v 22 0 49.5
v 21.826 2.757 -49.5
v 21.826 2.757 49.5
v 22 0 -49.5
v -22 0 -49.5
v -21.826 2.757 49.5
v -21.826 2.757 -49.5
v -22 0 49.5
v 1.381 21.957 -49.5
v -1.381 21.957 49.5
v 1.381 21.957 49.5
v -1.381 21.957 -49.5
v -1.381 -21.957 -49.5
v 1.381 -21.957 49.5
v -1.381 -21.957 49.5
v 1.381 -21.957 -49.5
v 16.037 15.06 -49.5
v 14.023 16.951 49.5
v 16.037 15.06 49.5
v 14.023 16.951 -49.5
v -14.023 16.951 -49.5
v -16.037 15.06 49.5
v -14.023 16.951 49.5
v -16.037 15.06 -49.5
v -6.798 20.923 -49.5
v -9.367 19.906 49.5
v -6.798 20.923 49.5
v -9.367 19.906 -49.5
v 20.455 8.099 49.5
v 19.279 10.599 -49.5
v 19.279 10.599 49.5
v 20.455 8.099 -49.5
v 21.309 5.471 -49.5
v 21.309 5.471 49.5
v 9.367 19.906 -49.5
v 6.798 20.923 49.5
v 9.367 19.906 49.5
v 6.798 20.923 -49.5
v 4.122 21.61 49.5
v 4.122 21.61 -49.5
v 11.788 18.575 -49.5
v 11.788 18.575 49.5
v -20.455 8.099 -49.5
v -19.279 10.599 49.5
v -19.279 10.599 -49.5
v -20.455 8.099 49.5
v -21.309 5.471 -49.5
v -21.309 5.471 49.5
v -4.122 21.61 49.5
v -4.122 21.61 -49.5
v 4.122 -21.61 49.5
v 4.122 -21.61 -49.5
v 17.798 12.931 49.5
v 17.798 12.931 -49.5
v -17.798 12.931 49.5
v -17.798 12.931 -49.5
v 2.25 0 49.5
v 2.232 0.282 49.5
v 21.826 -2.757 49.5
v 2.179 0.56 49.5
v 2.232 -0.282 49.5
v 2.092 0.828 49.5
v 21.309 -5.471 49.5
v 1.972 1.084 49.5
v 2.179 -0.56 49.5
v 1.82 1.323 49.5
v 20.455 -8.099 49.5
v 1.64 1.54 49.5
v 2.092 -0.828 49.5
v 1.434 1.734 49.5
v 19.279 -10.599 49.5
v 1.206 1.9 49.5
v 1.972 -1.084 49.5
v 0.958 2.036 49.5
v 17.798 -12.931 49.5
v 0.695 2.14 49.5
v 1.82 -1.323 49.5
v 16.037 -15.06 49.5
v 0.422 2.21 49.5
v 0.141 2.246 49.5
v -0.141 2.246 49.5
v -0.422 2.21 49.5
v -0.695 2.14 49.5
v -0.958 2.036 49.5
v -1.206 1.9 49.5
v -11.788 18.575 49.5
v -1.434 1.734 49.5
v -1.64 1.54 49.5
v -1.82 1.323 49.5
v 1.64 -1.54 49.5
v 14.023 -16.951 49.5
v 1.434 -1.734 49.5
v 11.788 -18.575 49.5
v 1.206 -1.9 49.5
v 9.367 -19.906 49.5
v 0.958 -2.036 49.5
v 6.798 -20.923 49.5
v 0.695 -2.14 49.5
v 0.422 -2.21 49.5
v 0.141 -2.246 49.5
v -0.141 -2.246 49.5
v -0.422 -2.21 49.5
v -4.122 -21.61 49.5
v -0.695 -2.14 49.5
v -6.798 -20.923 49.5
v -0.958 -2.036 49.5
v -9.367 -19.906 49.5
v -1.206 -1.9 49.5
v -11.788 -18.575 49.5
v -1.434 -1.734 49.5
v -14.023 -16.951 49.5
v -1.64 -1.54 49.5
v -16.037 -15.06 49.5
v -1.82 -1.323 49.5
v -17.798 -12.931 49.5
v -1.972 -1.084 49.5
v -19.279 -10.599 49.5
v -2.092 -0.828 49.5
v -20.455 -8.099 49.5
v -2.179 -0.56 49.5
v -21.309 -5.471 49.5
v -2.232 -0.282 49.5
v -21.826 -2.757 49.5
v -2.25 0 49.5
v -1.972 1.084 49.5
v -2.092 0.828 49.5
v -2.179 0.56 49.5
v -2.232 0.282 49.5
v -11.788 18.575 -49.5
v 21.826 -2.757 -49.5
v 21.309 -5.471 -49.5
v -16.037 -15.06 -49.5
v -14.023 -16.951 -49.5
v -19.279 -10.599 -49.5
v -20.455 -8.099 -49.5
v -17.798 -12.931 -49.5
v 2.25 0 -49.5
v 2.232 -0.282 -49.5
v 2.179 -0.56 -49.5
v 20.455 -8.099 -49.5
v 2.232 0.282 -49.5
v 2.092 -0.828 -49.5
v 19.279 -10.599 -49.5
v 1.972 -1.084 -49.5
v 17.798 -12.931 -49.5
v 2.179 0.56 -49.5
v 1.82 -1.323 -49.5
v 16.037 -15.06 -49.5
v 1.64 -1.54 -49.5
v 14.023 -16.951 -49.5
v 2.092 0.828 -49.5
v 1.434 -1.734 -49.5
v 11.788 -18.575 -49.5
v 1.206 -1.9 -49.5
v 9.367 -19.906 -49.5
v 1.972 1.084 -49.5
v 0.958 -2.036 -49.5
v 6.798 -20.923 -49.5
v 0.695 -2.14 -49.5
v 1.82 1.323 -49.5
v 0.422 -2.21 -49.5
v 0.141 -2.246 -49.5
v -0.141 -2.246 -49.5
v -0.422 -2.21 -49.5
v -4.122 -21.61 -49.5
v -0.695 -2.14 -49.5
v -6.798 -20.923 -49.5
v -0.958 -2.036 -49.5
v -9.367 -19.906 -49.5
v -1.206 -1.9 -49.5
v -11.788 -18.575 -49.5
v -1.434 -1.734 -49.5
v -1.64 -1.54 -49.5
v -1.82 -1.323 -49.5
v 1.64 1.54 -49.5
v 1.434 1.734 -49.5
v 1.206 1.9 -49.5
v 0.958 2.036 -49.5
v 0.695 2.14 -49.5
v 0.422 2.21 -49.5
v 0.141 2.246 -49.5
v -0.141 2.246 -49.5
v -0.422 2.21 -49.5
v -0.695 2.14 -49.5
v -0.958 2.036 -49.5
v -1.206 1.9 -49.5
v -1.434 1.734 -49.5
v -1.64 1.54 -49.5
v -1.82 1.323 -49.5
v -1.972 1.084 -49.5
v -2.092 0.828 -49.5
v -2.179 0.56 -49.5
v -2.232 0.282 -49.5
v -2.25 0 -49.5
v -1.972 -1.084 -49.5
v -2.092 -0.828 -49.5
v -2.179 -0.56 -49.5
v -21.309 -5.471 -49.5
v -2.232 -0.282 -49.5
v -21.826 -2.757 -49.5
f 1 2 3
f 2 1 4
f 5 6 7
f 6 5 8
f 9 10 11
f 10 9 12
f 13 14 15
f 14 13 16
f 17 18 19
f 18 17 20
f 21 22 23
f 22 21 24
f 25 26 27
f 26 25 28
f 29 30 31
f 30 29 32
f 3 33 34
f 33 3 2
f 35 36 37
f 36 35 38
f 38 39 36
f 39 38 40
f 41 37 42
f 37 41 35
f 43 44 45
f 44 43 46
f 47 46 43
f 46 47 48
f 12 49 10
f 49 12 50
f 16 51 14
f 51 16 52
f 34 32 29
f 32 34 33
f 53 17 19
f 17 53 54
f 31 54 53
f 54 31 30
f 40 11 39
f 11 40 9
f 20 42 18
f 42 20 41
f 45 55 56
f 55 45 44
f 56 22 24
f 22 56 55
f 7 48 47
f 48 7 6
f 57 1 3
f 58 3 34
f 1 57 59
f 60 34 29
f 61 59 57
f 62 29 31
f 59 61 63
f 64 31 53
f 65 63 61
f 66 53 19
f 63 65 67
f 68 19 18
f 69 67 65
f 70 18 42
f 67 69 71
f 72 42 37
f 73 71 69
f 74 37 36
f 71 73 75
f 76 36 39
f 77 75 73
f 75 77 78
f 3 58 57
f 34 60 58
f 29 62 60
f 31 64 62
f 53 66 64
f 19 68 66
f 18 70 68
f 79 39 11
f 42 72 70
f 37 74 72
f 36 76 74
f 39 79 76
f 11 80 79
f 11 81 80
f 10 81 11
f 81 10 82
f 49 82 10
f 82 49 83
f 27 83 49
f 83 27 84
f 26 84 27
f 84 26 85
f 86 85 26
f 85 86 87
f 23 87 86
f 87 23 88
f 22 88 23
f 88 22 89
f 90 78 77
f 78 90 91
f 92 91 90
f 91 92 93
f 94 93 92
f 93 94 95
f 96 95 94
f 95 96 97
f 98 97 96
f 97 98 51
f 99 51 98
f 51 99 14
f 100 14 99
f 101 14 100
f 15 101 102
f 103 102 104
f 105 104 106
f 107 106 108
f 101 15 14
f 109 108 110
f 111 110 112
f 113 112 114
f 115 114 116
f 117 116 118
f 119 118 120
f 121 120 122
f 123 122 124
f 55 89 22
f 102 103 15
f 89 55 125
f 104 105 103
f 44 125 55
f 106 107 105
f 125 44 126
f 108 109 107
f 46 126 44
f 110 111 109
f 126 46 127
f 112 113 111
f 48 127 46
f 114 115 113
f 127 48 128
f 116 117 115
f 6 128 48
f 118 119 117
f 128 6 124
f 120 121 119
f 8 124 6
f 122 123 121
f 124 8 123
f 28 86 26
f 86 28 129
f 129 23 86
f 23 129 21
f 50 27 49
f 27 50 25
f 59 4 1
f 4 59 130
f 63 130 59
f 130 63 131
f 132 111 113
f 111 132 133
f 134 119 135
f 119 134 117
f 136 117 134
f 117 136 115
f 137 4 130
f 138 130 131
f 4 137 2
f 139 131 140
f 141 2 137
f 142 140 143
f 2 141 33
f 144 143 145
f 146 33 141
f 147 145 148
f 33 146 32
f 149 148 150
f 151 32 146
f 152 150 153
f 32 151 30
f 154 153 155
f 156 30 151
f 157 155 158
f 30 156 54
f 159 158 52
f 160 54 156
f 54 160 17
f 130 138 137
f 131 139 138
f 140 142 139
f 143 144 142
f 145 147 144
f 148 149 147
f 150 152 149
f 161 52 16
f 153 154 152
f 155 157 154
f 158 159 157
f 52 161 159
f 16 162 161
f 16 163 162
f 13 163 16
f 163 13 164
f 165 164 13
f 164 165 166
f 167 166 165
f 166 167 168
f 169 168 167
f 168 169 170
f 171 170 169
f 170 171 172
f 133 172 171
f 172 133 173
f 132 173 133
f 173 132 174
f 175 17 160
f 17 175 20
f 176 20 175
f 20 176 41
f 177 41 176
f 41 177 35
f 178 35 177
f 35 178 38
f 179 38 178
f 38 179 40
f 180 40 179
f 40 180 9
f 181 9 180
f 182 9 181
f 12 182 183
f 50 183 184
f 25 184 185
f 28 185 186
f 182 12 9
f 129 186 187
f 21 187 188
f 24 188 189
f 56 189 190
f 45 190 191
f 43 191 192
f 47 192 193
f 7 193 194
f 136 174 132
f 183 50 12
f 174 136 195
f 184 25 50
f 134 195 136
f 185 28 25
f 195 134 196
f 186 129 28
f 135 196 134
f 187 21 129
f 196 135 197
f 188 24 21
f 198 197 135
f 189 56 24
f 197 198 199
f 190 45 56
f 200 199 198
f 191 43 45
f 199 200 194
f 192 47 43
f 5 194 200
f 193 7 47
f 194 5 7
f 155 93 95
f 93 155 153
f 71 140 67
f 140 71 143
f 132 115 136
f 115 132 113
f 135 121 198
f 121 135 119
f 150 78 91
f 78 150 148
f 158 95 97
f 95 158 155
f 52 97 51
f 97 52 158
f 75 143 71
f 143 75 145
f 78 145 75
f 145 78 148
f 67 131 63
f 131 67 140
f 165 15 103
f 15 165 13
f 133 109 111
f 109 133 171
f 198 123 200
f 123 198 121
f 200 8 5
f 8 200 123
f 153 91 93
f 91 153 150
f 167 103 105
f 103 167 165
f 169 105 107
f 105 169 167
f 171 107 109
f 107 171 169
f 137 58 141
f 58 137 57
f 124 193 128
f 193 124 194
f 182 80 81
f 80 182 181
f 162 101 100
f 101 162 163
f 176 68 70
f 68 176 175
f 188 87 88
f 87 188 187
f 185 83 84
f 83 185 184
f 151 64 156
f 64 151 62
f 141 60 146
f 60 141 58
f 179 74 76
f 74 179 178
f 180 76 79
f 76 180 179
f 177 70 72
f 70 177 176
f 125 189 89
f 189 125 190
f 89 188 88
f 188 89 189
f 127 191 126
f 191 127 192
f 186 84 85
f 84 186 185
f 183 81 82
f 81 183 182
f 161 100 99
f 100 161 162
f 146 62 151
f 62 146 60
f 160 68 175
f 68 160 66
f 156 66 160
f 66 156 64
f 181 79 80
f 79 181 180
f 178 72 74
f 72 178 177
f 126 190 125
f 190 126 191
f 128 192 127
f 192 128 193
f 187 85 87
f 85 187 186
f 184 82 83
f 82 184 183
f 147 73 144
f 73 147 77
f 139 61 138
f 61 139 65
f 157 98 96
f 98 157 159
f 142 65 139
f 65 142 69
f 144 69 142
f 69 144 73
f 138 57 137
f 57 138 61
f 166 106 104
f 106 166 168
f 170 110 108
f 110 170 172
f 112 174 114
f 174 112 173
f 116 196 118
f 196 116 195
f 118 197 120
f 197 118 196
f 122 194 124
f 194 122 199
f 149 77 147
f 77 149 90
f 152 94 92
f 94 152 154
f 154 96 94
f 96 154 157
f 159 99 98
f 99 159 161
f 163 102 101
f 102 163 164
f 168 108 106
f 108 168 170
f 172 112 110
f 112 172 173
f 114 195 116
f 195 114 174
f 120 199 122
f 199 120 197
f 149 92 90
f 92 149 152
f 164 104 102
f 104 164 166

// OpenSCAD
$fn = 50;


difference() {
	union() {
		translate(v = [0, 0, -49.5000000000]) {
			cylinder(h = 99, r = 22.0000000000);
		}
	}
	union() {
		translate(v = [0, 0, -100.0000000000]) {
			cylinder(h = 200, r = 2.2500000000);
		}
	}
}
